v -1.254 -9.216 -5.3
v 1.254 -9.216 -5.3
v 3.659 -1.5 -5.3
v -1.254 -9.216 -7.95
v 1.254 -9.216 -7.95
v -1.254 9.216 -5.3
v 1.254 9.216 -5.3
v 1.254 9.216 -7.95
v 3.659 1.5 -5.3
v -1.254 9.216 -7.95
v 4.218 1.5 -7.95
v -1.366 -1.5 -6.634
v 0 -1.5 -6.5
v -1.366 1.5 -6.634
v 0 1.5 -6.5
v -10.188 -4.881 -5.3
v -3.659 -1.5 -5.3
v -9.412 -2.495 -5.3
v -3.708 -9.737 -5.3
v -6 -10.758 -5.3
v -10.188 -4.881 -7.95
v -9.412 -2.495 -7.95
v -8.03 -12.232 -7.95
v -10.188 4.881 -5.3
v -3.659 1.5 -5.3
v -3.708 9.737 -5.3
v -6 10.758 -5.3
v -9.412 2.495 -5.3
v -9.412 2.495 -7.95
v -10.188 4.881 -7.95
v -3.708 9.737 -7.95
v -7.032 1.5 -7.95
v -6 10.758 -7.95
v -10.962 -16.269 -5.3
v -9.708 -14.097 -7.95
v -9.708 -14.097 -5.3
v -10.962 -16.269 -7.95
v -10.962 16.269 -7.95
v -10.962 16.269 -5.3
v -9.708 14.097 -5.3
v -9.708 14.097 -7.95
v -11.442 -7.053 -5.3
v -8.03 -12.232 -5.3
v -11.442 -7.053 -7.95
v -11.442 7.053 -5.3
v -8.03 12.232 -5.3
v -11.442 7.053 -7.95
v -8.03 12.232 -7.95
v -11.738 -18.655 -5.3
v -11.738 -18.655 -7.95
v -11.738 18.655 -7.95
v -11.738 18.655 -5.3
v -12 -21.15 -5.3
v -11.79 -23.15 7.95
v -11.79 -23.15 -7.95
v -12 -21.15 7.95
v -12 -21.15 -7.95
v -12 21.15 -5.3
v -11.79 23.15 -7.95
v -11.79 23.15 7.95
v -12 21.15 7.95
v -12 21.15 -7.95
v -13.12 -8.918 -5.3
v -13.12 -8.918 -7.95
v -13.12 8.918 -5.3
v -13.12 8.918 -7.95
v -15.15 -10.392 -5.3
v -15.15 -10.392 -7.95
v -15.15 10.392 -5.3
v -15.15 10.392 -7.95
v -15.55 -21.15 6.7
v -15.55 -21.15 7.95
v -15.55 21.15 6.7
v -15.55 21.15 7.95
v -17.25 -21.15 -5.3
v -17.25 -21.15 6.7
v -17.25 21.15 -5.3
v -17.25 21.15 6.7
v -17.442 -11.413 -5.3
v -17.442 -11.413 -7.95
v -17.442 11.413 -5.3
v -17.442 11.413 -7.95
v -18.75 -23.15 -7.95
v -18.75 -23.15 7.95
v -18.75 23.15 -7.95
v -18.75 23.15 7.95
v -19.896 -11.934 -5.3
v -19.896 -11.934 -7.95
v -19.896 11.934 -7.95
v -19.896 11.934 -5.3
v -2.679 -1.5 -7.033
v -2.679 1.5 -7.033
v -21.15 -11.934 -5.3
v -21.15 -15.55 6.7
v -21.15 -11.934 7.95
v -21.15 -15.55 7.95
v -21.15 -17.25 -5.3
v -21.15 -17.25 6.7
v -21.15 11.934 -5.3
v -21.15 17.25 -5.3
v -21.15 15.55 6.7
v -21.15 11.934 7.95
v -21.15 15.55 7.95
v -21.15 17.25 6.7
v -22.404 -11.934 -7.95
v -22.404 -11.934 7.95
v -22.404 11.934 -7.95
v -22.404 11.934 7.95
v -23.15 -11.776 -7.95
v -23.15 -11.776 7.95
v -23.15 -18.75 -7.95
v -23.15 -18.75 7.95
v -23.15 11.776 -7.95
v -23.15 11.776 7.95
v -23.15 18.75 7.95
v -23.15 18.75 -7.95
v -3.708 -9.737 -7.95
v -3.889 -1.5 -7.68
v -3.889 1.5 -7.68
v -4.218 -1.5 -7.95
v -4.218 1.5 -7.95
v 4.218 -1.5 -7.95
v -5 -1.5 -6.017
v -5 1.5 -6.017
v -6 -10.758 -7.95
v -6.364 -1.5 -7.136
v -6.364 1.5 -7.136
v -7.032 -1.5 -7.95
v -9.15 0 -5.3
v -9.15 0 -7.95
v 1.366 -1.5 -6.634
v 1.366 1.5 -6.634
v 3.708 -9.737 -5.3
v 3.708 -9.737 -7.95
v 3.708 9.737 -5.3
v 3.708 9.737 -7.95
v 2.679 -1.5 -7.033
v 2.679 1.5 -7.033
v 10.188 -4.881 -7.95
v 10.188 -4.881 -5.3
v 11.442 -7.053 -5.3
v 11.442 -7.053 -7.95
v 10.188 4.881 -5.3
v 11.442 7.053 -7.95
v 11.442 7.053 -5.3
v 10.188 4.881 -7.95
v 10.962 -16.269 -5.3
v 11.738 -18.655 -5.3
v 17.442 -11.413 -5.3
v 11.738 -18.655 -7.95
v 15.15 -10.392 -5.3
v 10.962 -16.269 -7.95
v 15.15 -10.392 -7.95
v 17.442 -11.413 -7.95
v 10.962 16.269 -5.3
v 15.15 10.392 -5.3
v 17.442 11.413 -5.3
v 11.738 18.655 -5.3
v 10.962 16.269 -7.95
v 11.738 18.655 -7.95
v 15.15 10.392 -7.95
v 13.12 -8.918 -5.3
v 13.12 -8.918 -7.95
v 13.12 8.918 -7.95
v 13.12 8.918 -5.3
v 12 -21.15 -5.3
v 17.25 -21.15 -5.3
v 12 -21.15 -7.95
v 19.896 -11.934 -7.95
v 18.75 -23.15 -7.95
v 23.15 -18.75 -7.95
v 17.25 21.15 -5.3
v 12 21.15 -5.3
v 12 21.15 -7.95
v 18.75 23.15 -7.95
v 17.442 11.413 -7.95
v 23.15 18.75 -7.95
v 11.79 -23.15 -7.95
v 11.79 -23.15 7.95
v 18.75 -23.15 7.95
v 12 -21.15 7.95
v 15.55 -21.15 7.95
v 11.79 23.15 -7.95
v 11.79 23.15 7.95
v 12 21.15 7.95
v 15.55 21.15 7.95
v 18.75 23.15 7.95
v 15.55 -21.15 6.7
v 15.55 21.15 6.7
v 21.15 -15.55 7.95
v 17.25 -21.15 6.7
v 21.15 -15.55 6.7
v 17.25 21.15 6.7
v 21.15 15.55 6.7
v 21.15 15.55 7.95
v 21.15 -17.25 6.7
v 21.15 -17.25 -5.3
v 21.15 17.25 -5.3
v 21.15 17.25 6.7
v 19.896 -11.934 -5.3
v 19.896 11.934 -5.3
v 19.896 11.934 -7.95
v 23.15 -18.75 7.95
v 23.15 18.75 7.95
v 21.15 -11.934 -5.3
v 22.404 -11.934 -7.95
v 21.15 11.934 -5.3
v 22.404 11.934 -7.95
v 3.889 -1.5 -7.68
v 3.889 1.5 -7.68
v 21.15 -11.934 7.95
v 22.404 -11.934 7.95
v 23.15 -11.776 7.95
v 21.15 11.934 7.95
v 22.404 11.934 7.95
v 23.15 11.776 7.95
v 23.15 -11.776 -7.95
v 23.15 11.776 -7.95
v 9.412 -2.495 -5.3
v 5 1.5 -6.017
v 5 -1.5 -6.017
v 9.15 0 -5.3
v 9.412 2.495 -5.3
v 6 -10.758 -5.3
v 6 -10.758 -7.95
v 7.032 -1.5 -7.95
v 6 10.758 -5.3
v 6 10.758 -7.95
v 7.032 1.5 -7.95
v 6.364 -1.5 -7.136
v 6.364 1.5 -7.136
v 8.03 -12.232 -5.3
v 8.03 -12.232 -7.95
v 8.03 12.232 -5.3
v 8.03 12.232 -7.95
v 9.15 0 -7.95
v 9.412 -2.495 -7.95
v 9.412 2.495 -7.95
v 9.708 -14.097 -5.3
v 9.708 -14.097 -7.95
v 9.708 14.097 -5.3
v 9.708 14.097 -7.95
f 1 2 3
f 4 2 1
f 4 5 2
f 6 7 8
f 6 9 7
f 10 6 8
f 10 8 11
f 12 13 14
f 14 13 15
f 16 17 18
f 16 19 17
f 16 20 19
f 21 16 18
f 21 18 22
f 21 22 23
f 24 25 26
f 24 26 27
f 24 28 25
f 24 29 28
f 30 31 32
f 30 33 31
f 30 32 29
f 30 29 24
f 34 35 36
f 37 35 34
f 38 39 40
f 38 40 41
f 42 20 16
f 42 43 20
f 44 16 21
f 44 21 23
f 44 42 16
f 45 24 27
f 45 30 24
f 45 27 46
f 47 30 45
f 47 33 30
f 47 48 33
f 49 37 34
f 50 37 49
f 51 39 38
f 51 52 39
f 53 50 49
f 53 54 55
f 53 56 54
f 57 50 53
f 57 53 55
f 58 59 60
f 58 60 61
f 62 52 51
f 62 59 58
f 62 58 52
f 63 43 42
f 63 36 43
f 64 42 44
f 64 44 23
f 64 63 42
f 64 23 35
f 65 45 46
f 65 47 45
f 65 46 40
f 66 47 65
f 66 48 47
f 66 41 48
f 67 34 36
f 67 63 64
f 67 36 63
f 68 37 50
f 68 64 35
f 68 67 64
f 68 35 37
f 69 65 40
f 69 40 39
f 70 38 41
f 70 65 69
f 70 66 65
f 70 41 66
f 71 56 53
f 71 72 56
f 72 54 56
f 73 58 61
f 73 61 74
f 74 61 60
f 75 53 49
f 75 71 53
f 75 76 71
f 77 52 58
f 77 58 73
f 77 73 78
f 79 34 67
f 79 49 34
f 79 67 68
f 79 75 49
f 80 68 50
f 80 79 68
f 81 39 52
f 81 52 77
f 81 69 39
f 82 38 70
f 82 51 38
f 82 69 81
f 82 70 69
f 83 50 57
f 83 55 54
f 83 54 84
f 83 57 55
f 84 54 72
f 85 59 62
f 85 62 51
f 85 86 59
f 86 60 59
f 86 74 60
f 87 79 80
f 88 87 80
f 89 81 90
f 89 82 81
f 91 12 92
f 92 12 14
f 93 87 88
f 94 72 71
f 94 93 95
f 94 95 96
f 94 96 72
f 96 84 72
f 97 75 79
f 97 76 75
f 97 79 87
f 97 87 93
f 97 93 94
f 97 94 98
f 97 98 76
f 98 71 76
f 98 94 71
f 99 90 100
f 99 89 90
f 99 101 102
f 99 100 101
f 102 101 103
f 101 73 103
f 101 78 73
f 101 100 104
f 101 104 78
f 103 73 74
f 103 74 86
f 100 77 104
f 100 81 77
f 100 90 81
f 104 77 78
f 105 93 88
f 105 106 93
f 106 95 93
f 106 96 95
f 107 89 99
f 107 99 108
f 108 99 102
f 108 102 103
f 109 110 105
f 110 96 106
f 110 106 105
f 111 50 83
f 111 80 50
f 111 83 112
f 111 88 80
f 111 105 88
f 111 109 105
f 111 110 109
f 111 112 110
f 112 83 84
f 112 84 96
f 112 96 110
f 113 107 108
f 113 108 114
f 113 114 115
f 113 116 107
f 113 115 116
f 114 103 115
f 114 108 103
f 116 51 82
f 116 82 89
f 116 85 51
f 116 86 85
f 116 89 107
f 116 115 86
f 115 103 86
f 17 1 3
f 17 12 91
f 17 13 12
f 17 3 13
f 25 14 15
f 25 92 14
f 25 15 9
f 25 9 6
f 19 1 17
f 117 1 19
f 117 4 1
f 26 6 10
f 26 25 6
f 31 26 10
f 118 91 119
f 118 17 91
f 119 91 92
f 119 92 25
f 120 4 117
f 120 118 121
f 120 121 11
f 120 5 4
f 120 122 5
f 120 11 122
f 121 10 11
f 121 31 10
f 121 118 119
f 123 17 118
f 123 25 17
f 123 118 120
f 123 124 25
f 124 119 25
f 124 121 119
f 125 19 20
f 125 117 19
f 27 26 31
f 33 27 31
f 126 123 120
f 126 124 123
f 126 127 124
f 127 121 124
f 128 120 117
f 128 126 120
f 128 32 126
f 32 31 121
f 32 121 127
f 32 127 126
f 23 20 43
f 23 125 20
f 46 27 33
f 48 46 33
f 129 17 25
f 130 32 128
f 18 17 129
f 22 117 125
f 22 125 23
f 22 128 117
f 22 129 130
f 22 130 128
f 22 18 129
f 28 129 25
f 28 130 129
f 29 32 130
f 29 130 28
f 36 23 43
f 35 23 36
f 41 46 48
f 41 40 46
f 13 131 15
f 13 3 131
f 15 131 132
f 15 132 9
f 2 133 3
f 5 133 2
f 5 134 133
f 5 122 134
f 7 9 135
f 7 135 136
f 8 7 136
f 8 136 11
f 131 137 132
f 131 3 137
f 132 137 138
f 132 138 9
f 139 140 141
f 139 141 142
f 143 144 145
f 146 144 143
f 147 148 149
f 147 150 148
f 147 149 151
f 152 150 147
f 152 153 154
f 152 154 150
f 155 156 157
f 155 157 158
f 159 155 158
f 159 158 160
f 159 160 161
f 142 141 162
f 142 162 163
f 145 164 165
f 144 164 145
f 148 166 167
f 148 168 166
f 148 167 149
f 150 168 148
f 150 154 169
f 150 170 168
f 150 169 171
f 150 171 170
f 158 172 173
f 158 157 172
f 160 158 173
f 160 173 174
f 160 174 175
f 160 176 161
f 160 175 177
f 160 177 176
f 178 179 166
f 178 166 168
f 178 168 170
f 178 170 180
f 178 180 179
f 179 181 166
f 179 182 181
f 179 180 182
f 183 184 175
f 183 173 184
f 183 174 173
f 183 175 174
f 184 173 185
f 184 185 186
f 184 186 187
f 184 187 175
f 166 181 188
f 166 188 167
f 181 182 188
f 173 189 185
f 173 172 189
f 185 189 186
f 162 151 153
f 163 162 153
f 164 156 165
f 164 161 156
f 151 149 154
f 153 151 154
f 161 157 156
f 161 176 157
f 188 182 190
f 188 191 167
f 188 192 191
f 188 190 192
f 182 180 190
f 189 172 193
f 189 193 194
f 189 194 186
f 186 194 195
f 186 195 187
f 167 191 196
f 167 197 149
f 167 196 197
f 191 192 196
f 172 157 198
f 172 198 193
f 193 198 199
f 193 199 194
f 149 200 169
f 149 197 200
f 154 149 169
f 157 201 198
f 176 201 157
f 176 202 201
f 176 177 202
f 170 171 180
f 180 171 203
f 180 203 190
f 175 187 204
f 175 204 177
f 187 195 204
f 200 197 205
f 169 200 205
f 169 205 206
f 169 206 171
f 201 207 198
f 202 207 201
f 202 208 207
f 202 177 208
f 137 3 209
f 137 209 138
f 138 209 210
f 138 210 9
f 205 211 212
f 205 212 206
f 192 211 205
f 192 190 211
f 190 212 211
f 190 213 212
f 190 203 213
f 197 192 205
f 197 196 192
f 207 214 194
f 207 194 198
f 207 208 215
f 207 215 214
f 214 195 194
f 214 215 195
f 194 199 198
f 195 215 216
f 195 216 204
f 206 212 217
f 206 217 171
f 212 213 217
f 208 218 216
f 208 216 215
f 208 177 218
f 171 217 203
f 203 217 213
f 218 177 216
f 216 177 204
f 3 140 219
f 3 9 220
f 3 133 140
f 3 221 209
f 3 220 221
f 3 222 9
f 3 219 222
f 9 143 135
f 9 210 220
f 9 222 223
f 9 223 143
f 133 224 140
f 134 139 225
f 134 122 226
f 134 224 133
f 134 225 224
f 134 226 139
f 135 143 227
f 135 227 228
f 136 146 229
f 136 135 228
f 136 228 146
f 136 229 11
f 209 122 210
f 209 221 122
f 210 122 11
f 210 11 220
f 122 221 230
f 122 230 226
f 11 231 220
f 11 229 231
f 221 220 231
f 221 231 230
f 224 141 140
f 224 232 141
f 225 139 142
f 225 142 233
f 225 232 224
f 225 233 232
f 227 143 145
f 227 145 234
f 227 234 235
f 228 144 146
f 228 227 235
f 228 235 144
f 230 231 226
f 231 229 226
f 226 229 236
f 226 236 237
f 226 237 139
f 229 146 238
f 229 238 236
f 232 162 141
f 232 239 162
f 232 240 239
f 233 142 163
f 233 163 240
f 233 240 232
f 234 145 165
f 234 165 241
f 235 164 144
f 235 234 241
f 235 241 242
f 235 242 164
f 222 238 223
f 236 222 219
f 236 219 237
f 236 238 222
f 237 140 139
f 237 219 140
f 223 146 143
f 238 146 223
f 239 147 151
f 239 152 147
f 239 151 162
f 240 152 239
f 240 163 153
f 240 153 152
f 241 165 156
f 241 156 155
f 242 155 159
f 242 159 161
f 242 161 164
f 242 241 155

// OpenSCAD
// file: ../include/configuration.scad
// Increase this if your slicer or printer make holes too tight.
extra_radius = 0.125;

// OD = outside diameter, corner to corner.
m3_nut_od = 6.1;
m3_nut_radius = m3_nut_od/2 + 0.2 + extra_radius;
m3_washer_radius = 3.5 + extra_radius;

// Major diameter of metric 3mm thread.
m3_major = 2.85;
m3_radius = m3_major/2 + extra_radius;
m3_wide_radius = m3_major/2 + extra_radius + 0.2;

// Major diameter of metric 5mm thread.
m5_major = 4.85;
m5_radius = m5_major/2 + extra_radius;
m5_wide_radius = m5_major/2 + extra_radius + 0.2;

// NEMA17 stepper motors.
motor_shaft_diameter = 5;
motor_shaft_radius = motor_shaft_diameter/2 + extra_radius;

// Frame brackets. M3x8mm screws work best with 3.6 mm brackets.
thickness = 3.6;

// OpenBeam or Misumi. Currently only 15x15 mm, but there is a plan
// to make models more parametric and allow 20x20 mm in the future.
extrusion = 15;

// Placement for the NEMA17 stepper motors.
motor_offset = 44;
motor_length = 47;

// Horizontal extrusion size
frame_base_size = 420;
// main file
// RebeliX
//
// Drzak kabelu nacvaknutelny na motor NEMA17
// GNU GPL v3
// Martin Neruda <neruda@reprap4u.cz>
// http://www.reprap4u.cz

include <../include/configuration.scad>

tloustka_steny = 2;
// 0503 LQEF
//vyska_kraje = 11.4;
// 1003 LQEF, 1005 LQEF
vyska_kraje = 12;

vyska_dilu = vyska_kraje+2.65+1.25;

module holder_base(){
  cube([42.3+2*tloustka_steny,42.3+2*tloustka_steny,vyska_dilu],center=true);
}

module holder_cuts(){
  difference(){
    translate([0,0,2]) cube([42.3,42.3,vyska_dilu - 1.3],center=true);
    // Rohy
    translate([34.5/2,42.3/2,-6]) rotate([0,0,-45]) cube([10,10,14]); 
	translate([-34.5/2,42.3/2,-6]) rotate([0,0,135]) cube([10,10,14]);
    translate([34.5/2,-42.3/2,-6]) rotate([0,0,-45]) cube([10,10,14]);
	translate([-34.5/2,-42.3/2,-6]) rotate([0,0,135]) cube([10,10,14]);	
	// Packy
	translate([34.5/2-1.7,42.3/2,vyska_dilu/2 - 1.25]) rotate([0,0,-45]) cube([10,10,10]);
	translate([-34.5/2+1.7,42.3/2,vyska_dilu/2 - 1.25]) rotate([0,0,135]) cube([10,10,10]);
	translate([34.5/2-1.7,-42.3/2,vyska_dilu/2 - 1.25]) rotate([0,0,-45]) cube([10,10,10]);
	translate([-34.5/2+1.7,-42.3/2,vyska_dilu/2 - 1.25]) rotate([0,0,135]) cube([10,10,10]);
  } 
  translate([33.5/2+tloustka_steny,42.3/2+tloustka_steny,-10]) rotate([0,0,-45]) cube([10,10,vyska_dilu + 5]);
  translate([-33.5/2-tloustka_steny,42.3/2+tloustka_steny,-10]) rotate([0,0,135]) cube([10,10,vyska_dilu + 5]);
  translate([33.5/2+tloustka_steny,-42.3/2-tloustka_steny,-10]) rotate([0,0,-45]) cube([10,10,vyska_dilu + 5]);
  translate([-33.5/2-tloustka_steny,-42.3/2-tloustka_steny,-10]) rotate([0,0,135]) cube([10,10,vyska_dilu + 5]);	
  // Setreni plastem
  translate([42.3/2,0,0]) cylinder(r=24/2,h=20,center=true);
  translate([0,42.3/2,0]) cylinder(r=24/2,h=20,center=true);
  translate([0,-42.3/2,0]) cylinder(r=24/2,h=20,center=true);
  translate([-42.3/2,0,0]) cylinder(r=24/2,h=20,center=true);
  // Otvor pro ZIP pasku
  translate([0,0,-13.5]) difference(){
    rotate([90,0,0]) cylinder(r=9,h=3,$fn=32,center=true);
	rotate([90,0,0]) cylinder(r=7,h=4,$fn=32,center=true);
  
  }
}

module nema17_cable_holder(){
	difference(){
	  holder_base();
	  holder_cuts();
	}
}

nema17_cable_holder();	
